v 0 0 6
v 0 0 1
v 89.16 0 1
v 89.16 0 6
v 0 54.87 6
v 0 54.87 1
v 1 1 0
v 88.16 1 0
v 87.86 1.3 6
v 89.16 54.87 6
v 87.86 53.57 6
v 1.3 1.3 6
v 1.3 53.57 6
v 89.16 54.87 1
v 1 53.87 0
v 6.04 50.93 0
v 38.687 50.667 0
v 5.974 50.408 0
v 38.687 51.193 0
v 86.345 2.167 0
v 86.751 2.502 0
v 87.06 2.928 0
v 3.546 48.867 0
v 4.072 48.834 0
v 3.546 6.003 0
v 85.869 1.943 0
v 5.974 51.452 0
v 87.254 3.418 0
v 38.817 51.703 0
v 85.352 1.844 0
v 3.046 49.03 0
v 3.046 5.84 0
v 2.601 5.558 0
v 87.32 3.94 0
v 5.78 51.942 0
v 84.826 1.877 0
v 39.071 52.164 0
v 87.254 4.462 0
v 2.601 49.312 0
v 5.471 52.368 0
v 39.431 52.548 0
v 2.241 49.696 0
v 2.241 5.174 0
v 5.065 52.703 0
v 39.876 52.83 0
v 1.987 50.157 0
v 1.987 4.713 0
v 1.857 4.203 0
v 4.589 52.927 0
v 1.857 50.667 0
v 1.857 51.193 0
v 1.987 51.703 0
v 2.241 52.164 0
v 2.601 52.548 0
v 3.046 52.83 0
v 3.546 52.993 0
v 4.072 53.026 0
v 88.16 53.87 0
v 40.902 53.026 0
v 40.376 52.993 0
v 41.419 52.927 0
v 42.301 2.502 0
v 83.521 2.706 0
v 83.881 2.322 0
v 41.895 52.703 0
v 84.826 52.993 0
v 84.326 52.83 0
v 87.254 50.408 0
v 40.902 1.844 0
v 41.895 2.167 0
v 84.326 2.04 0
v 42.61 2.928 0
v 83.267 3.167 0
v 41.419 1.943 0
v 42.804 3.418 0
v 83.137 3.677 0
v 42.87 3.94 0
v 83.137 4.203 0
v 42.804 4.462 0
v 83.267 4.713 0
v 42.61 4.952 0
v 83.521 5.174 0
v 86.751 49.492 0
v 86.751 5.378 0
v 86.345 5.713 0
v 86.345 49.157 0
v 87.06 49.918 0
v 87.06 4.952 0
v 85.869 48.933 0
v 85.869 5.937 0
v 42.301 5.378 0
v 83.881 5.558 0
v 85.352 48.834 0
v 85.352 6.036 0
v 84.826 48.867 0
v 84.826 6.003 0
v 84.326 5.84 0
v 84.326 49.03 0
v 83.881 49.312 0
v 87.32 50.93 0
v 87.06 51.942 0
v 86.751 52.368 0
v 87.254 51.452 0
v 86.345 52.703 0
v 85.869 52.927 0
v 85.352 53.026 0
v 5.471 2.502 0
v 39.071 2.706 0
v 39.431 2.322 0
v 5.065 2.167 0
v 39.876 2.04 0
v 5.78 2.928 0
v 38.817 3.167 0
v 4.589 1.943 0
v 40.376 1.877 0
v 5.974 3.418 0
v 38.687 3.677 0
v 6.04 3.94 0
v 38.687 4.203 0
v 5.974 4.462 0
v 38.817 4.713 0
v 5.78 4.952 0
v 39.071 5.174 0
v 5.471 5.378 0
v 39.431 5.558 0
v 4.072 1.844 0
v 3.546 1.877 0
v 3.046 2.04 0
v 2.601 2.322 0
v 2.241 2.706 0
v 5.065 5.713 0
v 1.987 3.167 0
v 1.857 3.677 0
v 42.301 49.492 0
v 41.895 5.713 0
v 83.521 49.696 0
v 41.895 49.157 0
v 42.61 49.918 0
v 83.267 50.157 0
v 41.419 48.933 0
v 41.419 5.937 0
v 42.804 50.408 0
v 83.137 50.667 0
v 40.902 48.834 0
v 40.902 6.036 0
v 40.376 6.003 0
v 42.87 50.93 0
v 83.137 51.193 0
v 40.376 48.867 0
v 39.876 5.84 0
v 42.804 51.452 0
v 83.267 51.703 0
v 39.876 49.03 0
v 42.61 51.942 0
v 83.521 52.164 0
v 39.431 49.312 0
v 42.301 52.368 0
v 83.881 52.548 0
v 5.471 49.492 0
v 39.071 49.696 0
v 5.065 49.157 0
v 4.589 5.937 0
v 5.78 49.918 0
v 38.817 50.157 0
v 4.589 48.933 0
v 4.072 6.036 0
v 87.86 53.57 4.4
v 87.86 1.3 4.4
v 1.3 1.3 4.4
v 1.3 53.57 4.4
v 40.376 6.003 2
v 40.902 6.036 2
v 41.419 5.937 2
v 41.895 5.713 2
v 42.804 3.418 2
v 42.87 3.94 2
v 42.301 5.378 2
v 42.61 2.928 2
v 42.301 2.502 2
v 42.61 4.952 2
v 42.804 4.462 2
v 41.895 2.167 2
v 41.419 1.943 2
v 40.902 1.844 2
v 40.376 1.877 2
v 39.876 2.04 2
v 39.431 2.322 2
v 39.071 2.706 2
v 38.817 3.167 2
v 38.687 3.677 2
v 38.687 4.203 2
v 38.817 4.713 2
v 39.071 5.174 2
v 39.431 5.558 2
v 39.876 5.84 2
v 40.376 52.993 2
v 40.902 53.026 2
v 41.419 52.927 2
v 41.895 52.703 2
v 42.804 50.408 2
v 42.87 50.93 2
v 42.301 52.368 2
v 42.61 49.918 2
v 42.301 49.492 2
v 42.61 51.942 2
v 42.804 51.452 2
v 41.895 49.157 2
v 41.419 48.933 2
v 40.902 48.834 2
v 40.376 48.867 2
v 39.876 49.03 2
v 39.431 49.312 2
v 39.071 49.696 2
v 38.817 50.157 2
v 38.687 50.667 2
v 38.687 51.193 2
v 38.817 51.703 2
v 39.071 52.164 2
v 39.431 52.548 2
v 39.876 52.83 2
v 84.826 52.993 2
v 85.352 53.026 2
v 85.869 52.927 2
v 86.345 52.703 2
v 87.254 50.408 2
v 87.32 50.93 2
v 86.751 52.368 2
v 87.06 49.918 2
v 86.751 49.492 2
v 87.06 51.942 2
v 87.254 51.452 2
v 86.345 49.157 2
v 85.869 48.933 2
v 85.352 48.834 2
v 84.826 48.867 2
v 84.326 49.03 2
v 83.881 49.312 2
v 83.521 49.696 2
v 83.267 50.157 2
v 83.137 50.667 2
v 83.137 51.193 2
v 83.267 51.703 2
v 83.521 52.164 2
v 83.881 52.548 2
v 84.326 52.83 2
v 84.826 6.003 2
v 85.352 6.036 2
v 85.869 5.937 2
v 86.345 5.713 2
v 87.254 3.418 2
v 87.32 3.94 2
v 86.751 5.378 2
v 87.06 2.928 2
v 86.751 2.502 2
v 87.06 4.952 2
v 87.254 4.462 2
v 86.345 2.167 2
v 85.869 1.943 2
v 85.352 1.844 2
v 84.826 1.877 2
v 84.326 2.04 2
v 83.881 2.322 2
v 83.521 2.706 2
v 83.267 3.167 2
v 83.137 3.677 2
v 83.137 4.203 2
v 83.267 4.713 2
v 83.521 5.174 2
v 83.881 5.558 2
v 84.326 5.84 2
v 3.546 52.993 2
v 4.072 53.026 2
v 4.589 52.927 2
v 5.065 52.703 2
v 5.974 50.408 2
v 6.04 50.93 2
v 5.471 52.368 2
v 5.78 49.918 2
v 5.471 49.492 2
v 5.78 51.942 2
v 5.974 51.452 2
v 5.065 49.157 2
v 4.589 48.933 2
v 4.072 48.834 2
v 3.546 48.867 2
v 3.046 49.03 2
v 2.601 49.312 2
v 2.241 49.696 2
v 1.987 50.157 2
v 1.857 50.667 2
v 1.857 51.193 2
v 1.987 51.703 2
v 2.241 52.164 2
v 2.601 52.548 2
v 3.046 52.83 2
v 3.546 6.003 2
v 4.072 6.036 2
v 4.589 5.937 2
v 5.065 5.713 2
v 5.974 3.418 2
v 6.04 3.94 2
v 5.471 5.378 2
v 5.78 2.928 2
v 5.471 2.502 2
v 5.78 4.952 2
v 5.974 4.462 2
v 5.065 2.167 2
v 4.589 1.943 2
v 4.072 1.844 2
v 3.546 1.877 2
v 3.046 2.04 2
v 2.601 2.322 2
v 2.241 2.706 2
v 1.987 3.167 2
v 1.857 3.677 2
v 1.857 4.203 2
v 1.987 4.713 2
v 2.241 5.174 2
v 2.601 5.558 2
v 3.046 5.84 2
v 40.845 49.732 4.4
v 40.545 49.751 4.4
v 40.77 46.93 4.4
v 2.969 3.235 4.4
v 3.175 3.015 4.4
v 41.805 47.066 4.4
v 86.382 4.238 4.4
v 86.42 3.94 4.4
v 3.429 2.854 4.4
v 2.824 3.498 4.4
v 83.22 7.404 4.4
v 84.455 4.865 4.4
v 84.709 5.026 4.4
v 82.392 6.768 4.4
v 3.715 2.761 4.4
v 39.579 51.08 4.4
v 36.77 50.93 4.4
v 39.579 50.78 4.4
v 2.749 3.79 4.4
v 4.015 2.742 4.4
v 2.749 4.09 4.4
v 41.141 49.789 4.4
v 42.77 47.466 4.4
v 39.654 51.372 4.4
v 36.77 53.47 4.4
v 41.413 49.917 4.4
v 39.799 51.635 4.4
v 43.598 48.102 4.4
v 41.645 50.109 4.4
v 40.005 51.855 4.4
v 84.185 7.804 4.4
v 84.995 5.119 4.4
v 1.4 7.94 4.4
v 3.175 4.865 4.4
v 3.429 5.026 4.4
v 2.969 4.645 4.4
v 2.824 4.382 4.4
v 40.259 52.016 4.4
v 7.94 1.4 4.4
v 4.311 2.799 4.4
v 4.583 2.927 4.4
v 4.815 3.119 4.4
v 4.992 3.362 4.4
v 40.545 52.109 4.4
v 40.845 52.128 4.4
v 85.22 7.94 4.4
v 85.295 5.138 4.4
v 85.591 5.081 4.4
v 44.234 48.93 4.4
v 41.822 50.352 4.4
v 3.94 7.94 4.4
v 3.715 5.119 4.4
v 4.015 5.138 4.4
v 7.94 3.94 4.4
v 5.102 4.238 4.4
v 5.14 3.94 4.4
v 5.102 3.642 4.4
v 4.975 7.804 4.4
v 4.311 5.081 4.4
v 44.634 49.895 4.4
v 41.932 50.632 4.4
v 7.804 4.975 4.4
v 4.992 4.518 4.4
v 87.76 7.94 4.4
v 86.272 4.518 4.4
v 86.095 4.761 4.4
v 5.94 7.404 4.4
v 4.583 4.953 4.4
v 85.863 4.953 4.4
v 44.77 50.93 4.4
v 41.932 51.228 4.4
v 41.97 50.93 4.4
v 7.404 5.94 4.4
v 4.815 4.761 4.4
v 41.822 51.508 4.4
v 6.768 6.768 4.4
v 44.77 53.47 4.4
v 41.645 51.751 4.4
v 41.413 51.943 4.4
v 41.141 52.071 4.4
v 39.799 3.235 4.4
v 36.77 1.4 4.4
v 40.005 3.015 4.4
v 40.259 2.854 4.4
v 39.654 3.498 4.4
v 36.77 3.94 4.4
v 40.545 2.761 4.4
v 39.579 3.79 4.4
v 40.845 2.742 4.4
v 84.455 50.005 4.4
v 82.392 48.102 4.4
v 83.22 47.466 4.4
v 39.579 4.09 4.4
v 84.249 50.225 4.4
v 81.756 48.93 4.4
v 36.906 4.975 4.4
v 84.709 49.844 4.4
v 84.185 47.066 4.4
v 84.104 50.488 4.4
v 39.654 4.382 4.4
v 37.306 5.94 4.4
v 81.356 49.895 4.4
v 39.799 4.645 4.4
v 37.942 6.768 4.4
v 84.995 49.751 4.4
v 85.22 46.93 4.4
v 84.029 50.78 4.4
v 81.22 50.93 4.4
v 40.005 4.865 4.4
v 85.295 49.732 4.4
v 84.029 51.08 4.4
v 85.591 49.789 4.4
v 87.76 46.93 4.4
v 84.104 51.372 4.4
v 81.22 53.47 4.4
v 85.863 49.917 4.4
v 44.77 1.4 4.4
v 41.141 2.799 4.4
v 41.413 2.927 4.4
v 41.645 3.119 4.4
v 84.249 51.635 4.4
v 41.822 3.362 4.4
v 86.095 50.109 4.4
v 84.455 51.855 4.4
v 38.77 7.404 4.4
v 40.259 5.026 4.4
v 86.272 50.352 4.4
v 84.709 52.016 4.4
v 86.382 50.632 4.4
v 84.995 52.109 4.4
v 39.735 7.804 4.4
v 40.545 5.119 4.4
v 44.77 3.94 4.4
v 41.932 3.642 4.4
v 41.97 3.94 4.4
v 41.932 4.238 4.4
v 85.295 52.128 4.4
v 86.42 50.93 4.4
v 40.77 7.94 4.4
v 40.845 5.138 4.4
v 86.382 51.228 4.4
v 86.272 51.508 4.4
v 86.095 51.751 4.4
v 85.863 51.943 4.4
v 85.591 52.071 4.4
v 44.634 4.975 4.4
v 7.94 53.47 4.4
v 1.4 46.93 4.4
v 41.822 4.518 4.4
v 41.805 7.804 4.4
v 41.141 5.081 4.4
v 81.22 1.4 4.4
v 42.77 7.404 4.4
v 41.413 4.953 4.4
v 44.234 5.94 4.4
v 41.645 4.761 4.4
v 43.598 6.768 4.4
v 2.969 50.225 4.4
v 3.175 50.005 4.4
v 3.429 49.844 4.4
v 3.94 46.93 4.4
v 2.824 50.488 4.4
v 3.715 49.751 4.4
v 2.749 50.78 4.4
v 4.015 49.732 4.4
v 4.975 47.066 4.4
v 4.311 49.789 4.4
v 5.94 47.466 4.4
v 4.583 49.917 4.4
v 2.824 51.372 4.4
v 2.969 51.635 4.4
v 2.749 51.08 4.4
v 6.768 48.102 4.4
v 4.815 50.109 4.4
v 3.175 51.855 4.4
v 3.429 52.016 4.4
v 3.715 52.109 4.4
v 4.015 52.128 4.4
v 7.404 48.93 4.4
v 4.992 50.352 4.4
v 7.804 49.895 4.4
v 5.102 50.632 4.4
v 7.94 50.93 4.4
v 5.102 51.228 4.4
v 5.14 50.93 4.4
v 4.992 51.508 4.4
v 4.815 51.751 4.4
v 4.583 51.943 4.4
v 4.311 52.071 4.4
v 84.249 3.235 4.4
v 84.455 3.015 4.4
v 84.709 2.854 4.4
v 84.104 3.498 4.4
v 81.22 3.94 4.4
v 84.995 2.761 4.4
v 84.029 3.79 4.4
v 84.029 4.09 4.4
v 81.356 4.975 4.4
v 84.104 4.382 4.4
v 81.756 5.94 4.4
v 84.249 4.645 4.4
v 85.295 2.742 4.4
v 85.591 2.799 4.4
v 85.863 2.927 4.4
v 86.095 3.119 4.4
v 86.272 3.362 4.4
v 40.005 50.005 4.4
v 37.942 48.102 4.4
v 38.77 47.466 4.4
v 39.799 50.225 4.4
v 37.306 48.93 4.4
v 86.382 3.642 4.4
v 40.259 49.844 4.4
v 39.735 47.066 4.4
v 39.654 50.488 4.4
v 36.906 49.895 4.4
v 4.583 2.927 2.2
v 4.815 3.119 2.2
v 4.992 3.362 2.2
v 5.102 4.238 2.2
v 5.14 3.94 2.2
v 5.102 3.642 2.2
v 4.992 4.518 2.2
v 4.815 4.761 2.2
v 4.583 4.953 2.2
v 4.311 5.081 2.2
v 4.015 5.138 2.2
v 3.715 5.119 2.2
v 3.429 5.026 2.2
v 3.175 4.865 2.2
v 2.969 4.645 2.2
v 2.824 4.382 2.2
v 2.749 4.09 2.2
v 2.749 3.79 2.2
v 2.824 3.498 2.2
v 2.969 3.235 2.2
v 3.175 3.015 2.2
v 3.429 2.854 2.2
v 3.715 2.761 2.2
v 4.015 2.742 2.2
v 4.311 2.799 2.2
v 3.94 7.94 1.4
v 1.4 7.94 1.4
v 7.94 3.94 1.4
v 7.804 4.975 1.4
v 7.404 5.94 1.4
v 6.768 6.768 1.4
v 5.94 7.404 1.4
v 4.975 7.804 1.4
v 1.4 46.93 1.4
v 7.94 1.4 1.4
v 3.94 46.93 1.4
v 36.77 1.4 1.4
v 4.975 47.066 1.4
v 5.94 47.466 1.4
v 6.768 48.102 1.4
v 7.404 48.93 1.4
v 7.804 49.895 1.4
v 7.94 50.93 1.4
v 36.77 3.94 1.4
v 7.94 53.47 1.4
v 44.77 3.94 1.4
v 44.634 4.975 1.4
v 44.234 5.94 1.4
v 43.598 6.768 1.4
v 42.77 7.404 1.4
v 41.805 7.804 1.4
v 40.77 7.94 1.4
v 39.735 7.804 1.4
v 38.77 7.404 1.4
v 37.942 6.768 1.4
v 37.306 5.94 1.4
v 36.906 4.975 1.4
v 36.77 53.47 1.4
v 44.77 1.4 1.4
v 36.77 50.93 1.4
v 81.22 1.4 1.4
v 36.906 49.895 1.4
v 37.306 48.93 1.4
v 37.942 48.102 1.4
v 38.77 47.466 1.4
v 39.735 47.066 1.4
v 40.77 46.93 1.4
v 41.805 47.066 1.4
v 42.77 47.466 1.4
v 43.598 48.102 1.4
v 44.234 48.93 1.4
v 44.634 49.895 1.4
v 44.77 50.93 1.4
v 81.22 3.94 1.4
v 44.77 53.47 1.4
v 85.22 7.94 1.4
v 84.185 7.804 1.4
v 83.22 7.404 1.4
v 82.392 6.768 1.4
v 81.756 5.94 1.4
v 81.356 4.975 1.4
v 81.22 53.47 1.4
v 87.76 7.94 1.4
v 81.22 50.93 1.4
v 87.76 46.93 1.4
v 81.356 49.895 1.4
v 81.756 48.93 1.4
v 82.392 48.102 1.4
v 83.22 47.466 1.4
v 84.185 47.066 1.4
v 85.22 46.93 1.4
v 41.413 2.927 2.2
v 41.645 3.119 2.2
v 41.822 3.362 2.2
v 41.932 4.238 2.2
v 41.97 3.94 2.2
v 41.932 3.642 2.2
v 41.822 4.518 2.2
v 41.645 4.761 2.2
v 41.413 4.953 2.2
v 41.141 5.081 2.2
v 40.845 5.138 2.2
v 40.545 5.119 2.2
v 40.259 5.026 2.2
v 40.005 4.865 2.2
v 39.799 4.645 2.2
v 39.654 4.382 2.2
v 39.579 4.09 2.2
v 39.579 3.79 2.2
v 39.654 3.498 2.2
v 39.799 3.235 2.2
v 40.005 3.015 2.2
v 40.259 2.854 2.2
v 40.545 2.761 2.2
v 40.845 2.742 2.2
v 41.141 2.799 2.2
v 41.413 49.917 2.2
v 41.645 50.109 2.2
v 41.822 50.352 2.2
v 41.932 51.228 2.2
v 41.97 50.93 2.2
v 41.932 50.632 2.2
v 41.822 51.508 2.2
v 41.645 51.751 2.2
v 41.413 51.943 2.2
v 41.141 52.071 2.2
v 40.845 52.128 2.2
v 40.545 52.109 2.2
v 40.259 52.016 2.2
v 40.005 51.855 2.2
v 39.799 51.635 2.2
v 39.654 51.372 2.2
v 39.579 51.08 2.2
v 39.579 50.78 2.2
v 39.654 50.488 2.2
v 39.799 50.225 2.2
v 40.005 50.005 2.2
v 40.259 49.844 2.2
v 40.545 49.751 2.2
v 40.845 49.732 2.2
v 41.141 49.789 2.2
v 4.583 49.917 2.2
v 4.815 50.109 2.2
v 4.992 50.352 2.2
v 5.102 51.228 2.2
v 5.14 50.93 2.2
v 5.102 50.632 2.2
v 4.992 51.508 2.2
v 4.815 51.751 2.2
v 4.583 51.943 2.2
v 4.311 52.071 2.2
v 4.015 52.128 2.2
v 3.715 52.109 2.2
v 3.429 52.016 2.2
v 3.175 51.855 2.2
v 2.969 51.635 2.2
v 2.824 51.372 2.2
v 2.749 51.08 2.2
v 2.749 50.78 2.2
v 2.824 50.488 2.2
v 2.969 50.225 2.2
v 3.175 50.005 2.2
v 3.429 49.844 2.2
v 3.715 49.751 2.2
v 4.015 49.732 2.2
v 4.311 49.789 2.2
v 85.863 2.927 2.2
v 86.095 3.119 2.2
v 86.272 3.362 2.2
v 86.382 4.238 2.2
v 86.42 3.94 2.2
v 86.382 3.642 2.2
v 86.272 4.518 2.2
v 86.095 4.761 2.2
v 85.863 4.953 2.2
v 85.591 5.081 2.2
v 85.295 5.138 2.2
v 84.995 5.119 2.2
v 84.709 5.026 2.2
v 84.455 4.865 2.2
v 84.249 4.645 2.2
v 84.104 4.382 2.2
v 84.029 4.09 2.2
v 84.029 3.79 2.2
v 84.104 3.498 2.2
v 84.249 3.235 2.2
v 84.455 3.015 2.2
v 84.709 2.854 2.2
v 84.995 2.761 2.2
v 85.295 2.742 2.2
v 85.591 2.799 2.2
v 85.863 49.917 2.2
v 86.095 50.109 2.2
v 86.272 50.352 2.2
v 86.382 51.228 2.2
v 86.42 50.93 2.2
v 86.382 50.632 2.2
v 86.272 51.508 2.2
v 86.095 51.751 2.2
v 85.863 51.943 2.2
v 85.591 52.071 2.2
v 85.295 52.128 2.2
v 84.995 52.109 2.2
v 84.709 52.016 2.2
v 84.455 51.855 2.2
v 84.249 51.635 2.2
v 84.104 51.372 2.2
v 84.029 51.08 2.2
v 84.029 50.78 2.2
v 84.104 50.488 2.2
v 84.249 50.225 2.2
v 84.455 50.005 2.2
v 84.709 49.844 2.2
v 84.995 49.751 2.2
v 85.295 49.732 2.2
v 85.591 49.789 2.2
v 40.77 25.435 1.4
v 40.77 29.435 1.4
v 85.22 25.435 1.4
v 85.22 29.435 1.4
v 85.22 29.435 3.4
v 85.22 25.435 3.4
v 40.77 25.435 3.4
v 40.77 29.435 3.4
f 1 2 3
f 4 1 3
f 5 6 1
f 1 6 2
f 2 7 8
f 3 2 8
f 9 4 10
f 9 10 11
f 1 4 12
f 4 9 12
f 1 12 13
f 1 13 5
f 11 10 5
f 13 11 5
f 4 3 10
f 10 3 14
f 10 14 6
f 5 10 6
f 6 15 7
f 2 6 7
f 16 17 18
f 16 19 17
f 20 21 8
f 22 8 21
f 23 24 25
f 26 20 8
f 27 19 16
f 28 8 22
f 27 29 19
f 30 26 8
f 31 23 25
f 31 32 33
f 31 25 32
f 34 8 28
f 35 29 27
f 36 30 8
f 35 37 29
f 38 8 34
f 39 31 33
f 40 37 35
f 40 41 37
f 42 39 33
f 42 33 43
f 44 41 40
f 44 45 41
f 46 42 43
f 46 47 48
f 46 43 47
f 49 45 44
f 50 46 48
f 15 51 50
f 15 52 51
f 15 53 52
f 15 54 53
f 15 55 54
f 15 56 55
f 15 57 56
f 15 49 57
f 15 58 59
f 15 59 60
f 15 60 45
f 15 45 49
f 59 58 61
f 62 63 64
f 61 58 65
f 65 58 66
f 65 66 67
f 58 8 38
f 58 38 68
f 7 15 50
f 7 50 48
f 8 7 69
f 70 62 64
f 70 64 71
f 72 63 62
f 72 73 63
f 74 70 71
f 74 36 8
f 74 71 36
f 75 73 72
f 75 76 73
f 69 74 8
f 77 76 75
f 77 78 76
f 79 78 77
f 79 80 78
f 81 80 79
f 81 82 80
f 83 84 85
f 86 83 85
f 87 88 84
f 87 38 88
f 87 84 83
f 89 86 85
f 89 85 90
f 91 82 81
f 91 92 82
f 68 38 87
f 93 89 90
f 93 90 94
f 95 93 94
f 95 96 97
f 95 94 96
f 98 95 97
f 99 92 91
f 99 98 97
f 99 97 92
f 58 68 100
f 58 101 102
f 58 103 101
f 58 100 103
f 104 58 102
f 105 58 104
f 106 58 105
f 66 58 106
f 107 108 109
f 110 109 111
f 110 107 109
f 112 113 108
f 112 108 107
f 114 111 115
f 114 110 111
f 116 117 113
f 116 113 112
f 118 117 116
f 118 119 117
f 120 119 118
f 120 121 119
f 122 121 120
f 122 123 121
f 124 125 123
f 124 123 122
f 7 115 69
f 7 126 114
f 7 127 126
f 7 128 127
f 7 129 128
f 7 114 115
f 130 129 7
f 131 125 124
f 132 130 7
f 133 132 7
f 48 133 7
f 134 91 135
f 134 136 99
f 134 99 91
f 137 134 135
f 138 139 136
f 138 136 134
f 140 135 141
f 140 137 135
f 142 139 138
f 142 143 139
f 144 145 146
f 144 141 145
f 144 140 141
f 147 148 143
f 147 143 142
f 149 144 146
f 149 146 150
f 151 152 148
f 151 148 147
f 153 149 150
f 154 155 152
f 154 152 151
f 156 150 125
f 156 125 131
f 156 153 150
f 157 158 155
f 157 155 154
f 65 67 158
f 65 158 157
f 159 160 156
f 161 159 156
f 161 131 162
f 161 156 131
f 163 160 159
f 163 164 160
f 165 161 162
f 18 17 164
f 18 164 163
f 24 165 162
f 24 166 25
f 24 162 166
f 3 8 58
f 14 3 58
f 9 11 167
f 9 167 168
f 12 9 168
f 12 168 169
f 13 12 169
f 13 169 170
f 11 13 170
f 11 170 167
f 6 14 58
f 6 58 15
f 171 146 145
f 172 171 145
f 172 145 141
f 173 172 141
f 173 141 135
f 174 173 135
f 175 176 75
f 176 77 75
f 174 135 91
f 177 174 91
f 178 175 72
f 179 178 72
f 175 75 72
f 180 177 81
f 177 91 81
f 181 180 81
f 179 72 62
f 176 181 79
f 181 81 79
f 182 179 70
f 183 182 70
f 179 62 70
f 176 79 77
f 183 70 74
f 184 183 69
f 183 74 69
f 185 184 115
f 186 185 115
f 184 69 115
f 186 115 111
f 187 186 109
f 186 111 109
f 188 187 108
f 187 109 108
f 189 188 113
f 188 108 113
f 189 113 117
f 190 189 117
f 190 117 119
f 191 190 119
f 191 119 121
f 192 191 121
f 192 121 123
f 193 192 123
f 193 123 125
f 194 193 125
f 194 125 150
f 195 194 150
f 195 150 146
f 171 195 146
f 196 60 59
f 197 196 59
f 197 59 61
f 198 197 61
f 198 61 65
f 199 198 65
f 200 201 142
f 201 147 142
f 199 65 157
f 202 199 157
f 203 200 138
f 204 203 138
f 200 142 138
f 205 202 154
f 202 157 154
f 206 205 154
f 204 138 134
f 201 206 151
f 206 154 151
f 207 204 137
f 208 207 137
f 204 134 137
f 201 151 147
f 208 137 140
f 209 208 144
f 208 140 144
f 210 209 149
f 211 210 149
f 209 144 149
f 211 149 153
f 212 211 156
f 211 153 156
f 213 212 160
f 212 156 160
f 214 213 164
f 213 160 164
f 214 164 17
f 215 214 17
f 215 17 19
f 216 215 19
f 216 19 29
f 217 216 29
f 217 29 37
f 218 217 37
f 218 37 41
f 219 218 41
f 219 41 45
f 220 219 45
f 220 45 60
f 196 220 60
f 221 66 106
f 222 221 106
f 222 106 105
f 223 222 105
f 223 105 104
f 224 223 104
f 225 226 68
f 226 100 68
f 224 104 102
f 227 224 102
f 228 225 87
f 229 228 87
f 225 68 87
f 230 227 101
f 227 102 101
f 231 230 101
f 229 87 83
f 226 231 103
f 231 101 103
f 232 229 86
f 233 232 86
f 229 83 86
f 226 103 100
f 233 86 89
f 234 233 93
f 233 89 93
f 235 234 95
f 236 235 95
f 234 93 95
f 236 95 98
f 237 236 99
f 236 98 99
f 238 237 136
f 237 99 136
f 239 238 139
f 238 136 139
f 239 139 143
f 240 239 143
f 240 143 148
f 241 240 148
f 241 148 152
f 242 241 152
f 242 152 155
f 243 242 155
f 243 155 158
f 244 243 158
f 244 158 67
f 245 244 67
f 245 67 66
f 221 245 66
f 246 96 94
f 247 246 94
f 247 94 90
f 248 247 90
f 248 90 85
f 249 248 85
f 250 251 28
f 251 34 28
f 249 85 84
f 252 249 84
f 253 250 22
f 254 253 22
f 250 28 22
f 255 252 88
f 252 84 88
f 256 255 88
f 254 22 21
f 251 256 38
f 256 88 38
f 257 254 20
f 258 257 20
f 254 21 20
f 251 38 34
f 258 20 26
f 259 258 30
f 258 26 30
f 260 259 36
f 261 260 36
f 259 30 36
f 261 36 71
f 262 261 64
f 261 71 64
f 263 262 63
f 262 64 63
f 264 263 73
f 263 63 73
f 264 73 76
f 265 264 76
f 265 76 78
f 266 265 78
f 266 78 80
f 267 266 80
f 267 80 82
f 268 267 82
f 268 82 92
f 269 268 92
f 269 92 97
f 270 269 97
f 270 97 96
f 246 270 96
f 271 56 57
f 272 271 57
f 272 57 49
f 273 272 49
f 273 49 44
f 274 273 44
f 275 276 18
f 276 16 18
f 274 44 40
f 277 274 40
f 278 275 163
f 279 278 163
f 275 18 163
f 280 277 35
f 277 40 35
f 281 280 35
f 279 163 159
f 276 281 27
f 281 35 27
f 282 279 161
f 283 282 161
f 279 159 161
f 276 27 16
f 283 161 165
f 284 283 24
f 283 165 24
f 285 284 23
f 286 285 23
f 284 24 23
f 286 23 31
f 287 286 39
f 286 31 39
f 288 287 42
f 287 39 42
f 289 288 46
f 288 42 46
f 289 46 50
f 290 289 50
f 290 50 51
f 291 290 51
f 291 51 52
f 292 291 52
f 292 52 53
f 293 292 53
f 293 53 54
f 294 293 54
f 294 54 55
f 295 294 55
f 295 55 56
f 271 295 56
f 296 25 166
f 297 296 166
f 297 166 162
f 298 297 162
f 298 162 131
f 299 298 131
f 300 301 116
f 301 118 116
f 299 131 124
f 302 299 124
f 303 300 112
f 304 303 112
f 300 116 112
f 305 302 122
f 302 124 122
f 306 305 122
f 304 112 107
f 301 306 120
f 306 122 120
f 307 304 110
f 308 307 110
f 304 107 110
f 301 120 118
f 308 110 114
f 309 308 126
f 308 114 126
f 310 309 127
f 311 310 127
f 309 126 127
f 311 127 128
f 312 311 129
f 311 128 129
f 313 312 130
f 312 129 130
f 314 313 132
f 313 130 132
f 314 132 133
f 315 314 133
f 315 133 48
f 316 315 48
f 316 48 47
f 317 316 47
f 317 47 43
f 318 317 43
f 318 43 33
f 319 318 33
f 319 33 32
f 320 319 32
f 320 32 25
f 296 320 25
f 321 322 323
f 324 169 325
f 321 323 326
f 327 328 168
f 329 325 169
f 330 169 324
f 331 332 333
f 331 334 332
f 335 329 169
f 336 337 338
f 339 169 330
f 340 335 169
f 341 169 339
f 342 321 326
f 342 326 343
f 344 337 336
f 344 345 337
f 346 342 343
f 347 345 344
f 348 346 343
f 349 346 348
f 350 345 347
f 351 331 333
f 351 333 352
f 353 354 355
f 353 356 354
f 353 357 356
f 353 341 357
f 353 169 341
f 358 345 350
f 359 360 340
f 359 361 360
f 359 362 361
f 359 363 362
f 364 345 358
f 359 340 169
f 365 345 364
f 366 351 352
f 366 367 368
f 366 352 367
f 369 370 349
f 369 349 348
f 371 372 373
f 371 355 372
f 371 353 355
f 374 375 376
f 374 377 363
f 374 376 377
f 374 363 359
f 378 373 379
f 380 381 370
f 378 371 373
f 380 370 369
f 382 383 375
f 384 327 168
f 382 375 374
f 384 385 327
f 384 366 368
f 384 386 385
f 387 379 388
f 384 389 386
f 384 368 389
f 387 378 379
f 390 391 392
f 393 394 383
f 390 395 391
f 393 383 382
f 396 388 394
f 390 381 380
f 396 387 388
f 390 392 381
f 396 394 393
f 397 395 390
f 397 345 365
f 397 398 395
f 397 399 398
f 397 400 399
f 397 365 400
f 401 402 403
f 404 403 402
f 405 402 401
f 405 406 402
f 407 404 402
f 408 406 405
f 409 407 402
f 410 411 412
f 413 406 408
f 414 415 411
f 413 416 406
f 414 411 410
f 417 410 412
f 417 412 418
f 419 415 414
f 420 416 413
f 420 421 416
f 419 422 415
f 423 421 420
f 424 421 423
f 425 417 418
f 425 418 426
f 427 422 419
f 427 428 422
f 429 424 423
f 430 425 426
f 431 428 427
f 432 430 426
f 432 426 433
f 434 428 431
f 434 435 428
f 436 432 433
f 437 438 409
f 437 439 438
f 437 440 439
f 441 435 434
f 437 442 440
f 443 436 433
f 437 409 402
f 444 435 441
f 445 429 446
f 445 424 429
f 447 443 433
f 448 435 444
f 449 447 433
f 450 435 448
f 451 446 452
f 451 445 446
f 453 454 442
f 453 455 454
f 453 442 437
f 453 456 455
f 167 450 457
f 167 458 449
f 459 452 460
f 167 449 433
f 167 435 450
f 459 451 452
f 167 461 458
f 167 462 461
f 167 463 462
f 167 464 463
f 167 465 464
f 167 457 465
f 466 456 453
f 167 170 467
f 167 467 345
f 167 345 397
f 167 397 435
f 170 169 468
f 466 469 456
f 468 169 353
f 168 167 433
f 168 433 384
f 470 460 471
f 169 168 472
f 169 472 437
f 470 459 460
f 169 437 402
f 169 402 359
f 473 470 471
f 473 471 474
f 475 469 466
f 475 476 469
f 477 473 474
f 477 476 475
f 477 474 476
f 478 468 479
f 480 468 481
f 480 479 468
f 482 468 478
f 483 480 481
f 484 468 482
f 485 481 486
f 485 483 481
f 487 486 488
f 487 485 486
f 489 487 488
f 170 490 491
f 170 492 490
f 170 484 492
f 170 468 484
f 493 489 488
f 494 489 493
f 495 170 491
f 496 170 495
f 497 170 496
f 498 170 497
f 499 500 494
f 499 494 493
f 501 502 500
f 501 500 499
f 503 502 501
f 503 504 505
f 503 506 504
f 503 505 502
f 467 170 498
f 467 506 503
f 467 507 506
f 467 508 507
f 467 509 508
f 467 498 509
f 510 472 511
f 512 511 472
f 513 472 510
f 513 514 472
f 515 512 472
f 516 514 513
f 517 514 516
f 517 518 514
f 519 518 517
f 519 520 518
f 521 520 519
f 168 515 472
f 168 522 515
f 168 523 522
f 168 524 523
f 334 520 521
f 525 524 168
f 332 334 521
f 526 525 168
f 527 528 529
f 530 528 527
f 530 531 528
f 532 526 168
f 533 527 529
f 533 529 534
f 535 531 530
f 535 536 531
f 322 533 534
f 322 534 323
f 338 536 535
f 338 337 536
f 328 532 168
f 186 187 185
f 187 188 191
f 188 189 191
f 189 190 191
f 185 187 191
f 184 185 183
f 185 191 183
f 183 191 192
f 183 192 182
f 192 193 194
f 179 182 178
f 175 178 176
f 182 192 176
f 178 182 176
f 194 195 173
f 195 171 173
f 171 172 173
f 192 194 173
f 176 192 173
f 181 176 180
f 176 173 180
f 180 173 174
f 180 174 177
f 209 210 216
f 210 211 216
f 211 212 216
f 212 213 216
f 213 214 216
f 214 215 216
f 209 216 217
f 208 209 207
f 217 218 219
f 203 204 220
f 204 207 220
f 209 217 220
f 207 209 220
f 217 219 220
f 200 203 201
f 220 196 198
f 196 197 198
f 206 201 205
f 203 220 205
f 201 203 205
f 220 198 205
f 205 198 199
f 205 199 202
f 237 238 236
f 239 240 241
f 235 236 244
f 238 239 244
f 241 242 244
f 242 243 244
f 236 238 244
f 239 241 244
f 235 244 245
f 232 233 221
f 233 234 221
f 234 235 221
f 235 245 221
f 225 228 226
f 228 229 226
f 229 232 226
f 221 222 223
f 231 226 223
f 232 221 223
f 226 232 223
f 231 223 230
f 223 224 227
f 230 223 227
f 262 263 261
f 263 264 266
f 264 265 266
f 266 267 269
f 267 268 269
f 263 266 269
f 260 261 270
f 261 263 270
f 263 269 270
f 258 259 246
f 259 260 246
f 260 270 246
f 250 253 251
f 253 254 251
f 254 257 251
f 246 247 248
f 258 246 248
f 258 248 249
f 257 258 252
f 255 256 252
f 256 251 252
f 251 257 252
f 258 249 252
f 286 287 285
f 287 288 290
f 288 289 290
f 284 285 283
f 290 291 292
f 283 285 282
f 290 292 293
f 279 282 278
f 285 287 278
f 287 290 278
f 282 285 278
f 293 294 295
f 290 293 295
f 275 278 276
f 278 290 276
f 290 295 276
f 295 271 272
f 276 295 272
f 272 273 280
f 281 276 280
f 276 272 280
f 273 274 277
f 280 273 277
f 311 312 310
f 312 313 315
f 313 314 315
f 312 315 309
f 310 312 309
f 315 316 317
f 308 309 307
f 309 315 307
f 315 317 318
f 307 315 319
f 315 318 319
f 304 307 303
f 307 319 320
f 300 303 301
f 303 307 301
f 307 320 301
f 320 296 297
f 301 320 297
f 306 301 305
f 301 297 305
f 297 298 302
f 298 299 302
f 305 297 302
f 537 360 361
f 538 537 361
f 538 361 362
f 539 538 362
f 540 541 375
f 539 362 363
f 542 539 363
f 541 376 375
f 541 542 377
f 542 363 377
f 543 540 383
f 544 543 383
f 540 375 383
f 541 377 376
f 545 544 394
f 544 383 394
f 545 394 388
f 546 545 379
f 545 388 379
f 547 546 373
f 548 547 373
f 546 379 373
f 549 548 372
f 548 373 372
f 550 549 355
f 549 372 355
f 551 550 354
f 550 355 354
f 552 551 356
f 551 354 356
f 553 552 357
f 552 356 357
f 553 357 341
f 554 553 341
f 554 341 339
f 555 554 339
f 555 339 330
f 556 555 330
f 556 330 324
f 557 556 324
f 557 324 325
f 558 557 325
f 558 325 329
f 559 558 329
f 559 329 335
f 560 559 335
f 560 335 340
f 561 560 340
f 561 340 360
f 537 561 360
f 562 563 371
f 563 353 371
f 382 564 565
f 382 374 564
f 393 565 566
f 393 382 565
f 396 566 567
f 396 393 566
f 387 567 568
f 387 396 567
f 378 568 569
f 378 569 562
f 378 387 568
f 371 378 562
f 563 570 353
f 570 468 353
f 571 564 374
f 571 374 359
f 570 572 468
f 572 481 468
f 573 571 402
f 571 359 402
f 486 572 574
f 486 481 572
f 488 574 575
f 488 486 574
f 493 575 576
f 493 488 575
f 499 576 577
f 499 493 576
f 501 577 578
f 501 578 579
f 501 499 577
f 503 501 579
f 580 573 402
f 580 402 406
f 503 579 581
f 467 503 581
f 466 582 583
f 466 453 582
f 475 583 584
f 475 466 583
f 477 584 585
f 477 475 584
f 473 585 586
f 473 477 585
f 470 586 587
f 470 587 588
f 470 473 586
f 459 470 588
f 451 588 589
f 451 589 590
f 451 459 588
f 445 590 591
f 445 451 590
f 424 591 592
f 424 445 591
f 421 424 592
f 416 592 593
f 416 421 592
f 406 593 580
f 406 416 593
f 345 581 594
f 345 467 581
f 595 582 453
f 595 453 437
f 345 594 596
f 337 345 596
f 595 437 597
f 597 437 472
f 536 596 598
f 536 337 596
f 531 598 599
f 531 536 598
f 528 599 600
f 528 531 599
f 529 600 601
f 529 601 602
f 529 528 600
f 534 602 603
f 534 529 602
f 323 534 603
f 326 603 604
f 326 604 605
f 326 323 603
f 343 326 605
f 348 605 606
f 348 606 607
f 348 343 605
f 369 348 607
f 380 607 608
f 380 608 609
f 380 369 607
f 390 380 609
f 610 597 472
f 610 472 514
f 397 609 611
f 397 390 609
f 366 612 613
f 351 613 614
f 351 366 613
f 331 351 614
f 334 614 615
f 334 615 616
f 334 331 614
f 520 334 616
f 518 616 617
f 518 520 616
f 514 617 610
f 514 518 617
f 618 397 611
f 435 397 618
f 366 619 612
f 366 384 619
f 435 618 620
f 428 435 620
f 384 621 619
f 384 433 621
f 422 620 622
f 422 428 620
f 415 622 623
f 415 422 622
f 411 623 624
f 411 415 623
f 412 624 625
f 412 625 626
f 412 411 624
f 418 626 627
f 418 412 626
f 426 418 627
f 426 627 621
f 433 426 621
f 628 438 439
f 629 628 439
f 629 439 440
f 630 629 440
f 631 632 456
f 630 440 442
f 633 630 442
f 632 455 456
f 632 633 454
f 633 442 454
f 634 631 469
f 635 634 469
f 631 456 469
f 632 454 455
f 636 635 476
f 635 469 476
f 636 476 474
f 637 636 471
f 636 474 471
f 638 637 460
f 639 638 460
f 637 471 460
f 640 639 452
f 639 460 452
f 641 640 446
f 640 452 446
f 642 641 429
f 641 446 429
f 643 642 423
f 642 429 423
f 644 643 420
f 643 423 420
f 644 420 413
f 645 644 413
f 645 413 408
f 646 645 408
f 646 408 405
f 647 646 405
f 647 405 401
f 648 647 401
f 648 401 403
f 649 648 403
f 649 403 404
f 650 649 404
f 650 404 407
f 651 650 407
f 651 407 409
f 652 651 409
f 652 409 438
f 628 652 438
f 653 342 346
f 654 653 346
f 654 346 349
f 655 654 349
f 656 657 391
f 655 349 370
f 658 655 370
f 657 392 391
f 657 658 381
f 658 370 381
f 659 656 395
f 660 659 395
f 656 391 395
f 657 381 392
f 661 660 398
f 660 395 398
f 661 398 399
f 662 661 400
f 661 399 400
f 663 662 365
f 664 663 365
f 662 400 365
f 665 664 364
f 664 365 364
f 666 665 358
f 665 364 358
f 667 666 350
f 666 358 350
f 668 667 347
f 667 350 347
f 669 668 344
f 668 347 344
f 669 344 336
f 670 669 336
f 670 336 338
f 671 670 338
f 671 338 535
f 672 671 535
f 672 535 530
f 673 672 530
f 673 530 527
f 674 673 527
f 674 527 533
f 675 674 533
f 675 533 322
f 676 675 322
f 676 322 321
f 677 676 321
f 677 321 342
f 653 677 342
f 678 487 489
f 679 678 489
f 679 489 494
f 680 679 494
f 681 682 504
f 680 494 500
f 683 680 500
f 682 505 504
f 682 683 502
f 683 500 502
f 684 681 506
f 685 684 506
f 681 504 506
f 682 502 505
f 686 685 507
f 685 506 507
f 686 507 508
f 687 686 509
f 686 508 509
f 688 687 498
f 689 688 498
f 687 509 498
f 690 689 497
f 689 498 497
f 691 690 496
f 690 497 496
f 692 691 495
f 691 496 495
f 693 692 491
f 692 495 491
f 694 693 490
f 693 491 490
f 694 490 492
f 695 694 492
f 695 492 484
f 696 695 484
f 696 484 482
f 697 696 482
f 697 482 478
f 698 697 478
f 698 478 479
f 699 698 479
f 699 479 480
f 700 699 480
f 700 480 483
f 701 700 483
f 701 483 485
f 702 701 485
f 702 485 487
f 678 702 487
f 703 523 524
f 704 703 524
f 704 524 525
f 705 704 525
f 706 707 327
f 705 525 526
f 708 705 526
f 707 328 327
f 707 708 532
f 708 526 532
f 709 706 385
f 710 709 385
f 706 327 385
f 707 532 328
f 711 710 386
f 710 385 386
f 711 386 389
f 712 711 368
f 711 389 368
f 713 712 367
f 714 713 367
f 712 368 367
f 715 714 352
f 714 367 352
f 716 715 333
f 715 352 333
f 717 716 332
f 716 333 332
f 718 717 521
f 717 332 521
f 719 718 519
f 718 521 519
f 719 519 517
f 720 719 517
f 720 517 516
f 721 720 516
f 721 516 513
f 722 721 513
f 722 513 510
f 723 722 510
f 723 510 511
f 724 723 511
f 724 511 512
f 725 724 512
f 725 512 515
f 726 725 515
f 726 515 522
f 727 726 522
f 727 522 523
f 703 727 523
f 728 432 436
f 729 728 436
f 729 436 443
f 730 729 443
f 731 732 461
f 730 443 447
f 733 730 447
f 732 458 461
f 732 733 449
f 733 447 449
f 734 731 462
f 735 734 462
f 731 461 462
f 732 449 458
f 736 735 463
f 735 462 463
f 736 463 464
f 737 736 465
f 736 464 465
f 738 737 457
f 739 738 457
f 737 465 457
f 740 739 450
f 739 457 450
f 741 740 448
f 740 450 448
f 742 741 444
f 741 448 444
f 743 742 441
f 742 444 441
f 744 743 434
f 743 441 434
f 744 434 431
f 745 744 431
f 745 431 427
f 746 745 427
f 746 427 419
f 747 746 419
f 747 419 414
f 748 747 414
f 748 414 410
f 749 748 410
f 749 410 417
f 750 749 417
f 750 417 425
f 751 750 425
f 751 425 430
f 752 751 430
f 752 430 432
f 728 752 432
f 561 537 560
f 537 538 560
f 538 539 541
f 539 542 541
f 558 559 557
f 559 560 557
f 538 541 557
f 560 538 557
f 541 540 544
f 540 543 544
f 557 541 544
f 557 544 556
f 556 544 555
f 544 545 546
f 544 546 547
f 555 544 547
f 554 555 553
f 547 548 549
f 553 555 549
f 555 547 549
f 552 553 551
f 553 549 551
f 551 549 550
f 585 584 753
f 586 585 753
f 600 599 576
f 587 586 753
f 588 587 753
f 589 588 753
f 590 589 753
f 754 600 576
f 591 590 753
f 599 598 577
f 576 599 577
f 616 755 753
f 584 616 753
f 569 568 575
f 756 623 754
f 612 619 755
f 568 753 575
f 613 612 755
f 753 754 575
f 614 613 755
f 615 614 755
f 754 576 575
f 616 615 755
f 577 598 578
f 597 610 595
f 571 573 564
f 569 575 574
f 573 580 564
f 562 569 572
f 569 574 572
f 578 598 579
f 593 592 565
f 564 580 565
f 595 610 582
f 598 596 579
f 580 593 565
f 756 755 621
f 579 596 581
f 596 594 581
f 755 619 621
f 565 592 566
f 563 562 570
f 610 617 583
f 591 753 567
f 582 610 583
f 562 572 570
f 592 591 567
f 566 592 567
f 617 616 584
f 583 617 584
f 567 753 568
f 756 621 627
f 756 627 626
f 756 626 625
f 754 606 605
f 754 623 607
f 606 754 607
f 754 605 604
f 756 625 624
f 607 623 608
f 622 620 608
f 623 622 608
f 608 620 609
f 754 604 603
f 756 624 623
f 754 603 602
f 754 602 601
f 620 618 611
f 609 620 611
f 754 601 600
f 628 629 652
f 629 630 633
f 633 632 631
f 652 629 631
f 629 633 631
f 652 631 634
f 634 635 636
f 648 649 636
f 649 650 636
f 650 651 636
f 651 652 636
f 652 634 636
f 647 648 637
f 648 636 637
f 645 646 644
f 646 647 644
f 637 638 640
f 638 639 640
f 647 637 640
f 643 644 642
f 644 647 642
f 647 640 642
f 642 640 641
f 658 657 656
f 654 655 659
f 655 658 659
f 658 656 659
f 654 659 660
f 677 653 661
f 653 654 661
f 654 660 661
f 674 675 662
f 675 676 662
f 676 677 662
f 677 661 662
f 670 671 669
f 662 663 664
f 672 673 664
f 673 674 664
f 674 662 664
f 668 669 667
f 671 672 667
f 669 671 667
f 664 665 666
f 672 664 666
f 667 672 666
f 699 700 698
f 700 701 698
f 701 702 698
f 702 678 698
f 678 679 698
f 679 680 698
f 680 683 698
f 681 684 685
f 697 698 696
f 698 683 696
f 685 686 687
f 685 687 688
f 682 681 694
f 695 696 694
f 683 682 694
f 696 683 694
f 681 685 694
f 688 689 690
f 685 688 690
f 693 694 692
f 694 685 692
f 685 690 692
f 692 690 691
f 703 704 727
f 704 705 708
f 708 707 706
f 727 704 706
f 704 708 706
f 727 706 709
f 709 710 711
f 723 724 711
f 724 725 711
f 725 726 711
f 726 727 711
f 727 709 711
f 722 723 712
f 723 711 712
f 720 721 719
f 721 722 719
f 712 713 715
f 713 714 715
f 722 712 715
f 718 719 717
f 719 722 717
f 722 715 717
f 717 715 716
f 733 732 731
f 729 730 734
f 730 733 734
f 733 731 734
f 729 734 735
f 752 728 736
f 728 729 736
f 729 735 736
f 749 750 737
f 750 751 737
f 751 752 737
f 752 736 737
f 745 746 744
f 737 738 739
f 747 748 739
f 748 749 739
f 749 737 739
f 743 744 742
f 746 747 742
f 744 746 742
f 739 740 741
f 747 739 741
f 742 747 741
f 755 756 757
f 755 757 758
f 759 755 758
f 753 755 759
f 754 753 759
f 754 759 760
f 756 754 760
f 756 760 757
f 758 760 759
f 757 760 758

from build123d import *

# Parameters (mm, degrees)
SKETCH_W        = 89.16
SKETCH_H        = 54.87
PAD_DEPTH       = 6
POCKET_DEPTH    = 4.6
SKETCH002_W     = 86.56
SKETCH002_H     = 52.27
POCKET001_DEPTH = 1.6
SKETCH004_R     = 1.2
POCKET002_DEPTH = 2.2
SKETCH003_R     = 2.1
POCKET003_DEPTH = 2
SKETCH005_W     = 44.45
SKETCH005_H     = 4
PAD001_DEPTH    = 2
CHAMFER_SIZE    = 1


with BuildPart() as part:
    # Sketch → Pad (new body)
    with BuildSketch(Plane.XY):
        with Locations((44.58, 27.435)):
            Rectangle(SKETCH_W, SKETCH_H)
    extrude(amount=PAD_DEPTH)

    # Sketch001 → Pocket (cut)
    with BuildSketch(Plane.XY.offset(6)):
        with BuildLine():
            ThreePointArc((3.94, 46.93), (6.768427, 48.101573), (7.94, 50.93))
            Line((7.94, 50.93), (7.94, 53.47))
            Line((7.94, 53.47), (36.77, 53.47))
            Line((36.77, 53.47), (36.77, 50.93))
            ThreePointArc((36.77, 50.93), (40.77, 46.93), (44.77, 50.93))
            Line((44.77, 50.93), (44.77, 53.47))
            Line((44.77, 53.47), (81.22, 53.47))
            Line((81.22, 53.47), (81.22, 50.93))
            ThreePointArc((81.22, 50.93), (82.391573, 48.101573), (85.22, 46.93))
            Line((85.22, 46.93), (87.76, 46.93))
            Line((87.76, 46.93), (87.76, 7.94))
            Line((87.76, 7.94), (85.22, 7.94))
            ThreePointArc((85.22, 7.94), (82.391573, 6.768427), (81.22, 3.94))
            Line((81.22, 1.4), (81.22, 3.94))
            Line((44.77, 1.4), (81.22, 1.4))
            Line((44.77, 3.94), (44.77, 1.4))
            ThreePointArc((44.77, 3.94), (40.77, 7.94), (36.77, 3.94))
            Line((36.77, 1.4), (36.77, 3.94))
            Line((7.94, 1.4), (36.77, 1.4))
            Line((7.94, 3.94), (7.94, 1.4))
            ThreePointArc((7.94, 3.94), (6.768427, 6.768427), (3.94, 7.94))
            Line((1.4, 7.94), (3.94, 7.94))
            Line((1.4, 46.93), (1.4, 7.94))
            Line((3.94, 46.93), (1.4, 46.93))
        make_face()
    extrude(amount=-POCKET_DEPTH, mode=Mode.SUBTRACT)

    # Sketch002 → Pocket001 (cut)
    with BuildSketch(Plane.XY.offset(6)):
        with Locations((44.58, 27.435)):
            Rectangle(SKETCH002_W, SKETCH002_H)
    extrude(amount=-POCKET001_DEPTH, mode=Mode.SUBTRACT)

    # Sketch004 → Pocket002 (cut)
    with BuildSketch(Plane.XY.offset(4.4)):
        with Locations((3.94, 50.93)):
            Circle(SKETCH004_R)
        with Locations((40.77, 50.93)):
            Circle(SKETCH004_R)
        with Locations((85.22, 50.93)):
            Circle(SKETCH004_R)
        with Locations((85.22, 3.94)):
            Circle(SKETCH004_R)
        with Locations((40.77, 3.94)):
            Circle(SKETCH004_R)
        with Locations((3.94, 3.94)):
            Circle(SKETCH004_R)
    extrude(amount=-POCKET002_DEPTH, mode=Mode.SUBTRACT)

    # Sketch003 → Pocket003 (cut)
    with BuildSketch(Plane(origin=(0, 0, 0), x_dir=(1, 0, 0), z_dir=(0, 0, -1))):
        with Locations((3.94, -3.94)):
            Circle(SKETCH003_R)
        with Locations((40.77, -3.94)):
            Circle(SKETCH003_R)
        with Locations((85.22, -3.94)):
            Circle(SKETCH003_R)
        with Locations((85.22, -50.93)):
            Circle(SKETCH003_R)
        with Locations((40.77, -50.93)):
            Circle(SKETCH003_R)
        with Locations((3.94, -50.93)):
            Circle(SKETCH003_R)
    extrude(amount=-POCKET003_DEPTH, mode=Mode.SUBTRACT)

    # Sketch005 → Pad001 (new body)
    with BuildSketch(Plane.XY.offset(1.4)):
        with Locations((62.995, 27.435)):
            Rectangle(SKETCH005_W, SKETCH005_H)
    extrude(amount=PAD001_DEPTH)

    # Chamfer
    chamfer_edges = [part.edges().sort_by_distance(p)[0] for p in [
        (44.58, 54.87, 0),
        (89.16, 27.435, 0),
        (0, 27.435, 0),
        (44.58, 0, 0),
    ]]
    chamfer(chamfer_edges, length=CHAMFER_SIZE)


solid = part.part
